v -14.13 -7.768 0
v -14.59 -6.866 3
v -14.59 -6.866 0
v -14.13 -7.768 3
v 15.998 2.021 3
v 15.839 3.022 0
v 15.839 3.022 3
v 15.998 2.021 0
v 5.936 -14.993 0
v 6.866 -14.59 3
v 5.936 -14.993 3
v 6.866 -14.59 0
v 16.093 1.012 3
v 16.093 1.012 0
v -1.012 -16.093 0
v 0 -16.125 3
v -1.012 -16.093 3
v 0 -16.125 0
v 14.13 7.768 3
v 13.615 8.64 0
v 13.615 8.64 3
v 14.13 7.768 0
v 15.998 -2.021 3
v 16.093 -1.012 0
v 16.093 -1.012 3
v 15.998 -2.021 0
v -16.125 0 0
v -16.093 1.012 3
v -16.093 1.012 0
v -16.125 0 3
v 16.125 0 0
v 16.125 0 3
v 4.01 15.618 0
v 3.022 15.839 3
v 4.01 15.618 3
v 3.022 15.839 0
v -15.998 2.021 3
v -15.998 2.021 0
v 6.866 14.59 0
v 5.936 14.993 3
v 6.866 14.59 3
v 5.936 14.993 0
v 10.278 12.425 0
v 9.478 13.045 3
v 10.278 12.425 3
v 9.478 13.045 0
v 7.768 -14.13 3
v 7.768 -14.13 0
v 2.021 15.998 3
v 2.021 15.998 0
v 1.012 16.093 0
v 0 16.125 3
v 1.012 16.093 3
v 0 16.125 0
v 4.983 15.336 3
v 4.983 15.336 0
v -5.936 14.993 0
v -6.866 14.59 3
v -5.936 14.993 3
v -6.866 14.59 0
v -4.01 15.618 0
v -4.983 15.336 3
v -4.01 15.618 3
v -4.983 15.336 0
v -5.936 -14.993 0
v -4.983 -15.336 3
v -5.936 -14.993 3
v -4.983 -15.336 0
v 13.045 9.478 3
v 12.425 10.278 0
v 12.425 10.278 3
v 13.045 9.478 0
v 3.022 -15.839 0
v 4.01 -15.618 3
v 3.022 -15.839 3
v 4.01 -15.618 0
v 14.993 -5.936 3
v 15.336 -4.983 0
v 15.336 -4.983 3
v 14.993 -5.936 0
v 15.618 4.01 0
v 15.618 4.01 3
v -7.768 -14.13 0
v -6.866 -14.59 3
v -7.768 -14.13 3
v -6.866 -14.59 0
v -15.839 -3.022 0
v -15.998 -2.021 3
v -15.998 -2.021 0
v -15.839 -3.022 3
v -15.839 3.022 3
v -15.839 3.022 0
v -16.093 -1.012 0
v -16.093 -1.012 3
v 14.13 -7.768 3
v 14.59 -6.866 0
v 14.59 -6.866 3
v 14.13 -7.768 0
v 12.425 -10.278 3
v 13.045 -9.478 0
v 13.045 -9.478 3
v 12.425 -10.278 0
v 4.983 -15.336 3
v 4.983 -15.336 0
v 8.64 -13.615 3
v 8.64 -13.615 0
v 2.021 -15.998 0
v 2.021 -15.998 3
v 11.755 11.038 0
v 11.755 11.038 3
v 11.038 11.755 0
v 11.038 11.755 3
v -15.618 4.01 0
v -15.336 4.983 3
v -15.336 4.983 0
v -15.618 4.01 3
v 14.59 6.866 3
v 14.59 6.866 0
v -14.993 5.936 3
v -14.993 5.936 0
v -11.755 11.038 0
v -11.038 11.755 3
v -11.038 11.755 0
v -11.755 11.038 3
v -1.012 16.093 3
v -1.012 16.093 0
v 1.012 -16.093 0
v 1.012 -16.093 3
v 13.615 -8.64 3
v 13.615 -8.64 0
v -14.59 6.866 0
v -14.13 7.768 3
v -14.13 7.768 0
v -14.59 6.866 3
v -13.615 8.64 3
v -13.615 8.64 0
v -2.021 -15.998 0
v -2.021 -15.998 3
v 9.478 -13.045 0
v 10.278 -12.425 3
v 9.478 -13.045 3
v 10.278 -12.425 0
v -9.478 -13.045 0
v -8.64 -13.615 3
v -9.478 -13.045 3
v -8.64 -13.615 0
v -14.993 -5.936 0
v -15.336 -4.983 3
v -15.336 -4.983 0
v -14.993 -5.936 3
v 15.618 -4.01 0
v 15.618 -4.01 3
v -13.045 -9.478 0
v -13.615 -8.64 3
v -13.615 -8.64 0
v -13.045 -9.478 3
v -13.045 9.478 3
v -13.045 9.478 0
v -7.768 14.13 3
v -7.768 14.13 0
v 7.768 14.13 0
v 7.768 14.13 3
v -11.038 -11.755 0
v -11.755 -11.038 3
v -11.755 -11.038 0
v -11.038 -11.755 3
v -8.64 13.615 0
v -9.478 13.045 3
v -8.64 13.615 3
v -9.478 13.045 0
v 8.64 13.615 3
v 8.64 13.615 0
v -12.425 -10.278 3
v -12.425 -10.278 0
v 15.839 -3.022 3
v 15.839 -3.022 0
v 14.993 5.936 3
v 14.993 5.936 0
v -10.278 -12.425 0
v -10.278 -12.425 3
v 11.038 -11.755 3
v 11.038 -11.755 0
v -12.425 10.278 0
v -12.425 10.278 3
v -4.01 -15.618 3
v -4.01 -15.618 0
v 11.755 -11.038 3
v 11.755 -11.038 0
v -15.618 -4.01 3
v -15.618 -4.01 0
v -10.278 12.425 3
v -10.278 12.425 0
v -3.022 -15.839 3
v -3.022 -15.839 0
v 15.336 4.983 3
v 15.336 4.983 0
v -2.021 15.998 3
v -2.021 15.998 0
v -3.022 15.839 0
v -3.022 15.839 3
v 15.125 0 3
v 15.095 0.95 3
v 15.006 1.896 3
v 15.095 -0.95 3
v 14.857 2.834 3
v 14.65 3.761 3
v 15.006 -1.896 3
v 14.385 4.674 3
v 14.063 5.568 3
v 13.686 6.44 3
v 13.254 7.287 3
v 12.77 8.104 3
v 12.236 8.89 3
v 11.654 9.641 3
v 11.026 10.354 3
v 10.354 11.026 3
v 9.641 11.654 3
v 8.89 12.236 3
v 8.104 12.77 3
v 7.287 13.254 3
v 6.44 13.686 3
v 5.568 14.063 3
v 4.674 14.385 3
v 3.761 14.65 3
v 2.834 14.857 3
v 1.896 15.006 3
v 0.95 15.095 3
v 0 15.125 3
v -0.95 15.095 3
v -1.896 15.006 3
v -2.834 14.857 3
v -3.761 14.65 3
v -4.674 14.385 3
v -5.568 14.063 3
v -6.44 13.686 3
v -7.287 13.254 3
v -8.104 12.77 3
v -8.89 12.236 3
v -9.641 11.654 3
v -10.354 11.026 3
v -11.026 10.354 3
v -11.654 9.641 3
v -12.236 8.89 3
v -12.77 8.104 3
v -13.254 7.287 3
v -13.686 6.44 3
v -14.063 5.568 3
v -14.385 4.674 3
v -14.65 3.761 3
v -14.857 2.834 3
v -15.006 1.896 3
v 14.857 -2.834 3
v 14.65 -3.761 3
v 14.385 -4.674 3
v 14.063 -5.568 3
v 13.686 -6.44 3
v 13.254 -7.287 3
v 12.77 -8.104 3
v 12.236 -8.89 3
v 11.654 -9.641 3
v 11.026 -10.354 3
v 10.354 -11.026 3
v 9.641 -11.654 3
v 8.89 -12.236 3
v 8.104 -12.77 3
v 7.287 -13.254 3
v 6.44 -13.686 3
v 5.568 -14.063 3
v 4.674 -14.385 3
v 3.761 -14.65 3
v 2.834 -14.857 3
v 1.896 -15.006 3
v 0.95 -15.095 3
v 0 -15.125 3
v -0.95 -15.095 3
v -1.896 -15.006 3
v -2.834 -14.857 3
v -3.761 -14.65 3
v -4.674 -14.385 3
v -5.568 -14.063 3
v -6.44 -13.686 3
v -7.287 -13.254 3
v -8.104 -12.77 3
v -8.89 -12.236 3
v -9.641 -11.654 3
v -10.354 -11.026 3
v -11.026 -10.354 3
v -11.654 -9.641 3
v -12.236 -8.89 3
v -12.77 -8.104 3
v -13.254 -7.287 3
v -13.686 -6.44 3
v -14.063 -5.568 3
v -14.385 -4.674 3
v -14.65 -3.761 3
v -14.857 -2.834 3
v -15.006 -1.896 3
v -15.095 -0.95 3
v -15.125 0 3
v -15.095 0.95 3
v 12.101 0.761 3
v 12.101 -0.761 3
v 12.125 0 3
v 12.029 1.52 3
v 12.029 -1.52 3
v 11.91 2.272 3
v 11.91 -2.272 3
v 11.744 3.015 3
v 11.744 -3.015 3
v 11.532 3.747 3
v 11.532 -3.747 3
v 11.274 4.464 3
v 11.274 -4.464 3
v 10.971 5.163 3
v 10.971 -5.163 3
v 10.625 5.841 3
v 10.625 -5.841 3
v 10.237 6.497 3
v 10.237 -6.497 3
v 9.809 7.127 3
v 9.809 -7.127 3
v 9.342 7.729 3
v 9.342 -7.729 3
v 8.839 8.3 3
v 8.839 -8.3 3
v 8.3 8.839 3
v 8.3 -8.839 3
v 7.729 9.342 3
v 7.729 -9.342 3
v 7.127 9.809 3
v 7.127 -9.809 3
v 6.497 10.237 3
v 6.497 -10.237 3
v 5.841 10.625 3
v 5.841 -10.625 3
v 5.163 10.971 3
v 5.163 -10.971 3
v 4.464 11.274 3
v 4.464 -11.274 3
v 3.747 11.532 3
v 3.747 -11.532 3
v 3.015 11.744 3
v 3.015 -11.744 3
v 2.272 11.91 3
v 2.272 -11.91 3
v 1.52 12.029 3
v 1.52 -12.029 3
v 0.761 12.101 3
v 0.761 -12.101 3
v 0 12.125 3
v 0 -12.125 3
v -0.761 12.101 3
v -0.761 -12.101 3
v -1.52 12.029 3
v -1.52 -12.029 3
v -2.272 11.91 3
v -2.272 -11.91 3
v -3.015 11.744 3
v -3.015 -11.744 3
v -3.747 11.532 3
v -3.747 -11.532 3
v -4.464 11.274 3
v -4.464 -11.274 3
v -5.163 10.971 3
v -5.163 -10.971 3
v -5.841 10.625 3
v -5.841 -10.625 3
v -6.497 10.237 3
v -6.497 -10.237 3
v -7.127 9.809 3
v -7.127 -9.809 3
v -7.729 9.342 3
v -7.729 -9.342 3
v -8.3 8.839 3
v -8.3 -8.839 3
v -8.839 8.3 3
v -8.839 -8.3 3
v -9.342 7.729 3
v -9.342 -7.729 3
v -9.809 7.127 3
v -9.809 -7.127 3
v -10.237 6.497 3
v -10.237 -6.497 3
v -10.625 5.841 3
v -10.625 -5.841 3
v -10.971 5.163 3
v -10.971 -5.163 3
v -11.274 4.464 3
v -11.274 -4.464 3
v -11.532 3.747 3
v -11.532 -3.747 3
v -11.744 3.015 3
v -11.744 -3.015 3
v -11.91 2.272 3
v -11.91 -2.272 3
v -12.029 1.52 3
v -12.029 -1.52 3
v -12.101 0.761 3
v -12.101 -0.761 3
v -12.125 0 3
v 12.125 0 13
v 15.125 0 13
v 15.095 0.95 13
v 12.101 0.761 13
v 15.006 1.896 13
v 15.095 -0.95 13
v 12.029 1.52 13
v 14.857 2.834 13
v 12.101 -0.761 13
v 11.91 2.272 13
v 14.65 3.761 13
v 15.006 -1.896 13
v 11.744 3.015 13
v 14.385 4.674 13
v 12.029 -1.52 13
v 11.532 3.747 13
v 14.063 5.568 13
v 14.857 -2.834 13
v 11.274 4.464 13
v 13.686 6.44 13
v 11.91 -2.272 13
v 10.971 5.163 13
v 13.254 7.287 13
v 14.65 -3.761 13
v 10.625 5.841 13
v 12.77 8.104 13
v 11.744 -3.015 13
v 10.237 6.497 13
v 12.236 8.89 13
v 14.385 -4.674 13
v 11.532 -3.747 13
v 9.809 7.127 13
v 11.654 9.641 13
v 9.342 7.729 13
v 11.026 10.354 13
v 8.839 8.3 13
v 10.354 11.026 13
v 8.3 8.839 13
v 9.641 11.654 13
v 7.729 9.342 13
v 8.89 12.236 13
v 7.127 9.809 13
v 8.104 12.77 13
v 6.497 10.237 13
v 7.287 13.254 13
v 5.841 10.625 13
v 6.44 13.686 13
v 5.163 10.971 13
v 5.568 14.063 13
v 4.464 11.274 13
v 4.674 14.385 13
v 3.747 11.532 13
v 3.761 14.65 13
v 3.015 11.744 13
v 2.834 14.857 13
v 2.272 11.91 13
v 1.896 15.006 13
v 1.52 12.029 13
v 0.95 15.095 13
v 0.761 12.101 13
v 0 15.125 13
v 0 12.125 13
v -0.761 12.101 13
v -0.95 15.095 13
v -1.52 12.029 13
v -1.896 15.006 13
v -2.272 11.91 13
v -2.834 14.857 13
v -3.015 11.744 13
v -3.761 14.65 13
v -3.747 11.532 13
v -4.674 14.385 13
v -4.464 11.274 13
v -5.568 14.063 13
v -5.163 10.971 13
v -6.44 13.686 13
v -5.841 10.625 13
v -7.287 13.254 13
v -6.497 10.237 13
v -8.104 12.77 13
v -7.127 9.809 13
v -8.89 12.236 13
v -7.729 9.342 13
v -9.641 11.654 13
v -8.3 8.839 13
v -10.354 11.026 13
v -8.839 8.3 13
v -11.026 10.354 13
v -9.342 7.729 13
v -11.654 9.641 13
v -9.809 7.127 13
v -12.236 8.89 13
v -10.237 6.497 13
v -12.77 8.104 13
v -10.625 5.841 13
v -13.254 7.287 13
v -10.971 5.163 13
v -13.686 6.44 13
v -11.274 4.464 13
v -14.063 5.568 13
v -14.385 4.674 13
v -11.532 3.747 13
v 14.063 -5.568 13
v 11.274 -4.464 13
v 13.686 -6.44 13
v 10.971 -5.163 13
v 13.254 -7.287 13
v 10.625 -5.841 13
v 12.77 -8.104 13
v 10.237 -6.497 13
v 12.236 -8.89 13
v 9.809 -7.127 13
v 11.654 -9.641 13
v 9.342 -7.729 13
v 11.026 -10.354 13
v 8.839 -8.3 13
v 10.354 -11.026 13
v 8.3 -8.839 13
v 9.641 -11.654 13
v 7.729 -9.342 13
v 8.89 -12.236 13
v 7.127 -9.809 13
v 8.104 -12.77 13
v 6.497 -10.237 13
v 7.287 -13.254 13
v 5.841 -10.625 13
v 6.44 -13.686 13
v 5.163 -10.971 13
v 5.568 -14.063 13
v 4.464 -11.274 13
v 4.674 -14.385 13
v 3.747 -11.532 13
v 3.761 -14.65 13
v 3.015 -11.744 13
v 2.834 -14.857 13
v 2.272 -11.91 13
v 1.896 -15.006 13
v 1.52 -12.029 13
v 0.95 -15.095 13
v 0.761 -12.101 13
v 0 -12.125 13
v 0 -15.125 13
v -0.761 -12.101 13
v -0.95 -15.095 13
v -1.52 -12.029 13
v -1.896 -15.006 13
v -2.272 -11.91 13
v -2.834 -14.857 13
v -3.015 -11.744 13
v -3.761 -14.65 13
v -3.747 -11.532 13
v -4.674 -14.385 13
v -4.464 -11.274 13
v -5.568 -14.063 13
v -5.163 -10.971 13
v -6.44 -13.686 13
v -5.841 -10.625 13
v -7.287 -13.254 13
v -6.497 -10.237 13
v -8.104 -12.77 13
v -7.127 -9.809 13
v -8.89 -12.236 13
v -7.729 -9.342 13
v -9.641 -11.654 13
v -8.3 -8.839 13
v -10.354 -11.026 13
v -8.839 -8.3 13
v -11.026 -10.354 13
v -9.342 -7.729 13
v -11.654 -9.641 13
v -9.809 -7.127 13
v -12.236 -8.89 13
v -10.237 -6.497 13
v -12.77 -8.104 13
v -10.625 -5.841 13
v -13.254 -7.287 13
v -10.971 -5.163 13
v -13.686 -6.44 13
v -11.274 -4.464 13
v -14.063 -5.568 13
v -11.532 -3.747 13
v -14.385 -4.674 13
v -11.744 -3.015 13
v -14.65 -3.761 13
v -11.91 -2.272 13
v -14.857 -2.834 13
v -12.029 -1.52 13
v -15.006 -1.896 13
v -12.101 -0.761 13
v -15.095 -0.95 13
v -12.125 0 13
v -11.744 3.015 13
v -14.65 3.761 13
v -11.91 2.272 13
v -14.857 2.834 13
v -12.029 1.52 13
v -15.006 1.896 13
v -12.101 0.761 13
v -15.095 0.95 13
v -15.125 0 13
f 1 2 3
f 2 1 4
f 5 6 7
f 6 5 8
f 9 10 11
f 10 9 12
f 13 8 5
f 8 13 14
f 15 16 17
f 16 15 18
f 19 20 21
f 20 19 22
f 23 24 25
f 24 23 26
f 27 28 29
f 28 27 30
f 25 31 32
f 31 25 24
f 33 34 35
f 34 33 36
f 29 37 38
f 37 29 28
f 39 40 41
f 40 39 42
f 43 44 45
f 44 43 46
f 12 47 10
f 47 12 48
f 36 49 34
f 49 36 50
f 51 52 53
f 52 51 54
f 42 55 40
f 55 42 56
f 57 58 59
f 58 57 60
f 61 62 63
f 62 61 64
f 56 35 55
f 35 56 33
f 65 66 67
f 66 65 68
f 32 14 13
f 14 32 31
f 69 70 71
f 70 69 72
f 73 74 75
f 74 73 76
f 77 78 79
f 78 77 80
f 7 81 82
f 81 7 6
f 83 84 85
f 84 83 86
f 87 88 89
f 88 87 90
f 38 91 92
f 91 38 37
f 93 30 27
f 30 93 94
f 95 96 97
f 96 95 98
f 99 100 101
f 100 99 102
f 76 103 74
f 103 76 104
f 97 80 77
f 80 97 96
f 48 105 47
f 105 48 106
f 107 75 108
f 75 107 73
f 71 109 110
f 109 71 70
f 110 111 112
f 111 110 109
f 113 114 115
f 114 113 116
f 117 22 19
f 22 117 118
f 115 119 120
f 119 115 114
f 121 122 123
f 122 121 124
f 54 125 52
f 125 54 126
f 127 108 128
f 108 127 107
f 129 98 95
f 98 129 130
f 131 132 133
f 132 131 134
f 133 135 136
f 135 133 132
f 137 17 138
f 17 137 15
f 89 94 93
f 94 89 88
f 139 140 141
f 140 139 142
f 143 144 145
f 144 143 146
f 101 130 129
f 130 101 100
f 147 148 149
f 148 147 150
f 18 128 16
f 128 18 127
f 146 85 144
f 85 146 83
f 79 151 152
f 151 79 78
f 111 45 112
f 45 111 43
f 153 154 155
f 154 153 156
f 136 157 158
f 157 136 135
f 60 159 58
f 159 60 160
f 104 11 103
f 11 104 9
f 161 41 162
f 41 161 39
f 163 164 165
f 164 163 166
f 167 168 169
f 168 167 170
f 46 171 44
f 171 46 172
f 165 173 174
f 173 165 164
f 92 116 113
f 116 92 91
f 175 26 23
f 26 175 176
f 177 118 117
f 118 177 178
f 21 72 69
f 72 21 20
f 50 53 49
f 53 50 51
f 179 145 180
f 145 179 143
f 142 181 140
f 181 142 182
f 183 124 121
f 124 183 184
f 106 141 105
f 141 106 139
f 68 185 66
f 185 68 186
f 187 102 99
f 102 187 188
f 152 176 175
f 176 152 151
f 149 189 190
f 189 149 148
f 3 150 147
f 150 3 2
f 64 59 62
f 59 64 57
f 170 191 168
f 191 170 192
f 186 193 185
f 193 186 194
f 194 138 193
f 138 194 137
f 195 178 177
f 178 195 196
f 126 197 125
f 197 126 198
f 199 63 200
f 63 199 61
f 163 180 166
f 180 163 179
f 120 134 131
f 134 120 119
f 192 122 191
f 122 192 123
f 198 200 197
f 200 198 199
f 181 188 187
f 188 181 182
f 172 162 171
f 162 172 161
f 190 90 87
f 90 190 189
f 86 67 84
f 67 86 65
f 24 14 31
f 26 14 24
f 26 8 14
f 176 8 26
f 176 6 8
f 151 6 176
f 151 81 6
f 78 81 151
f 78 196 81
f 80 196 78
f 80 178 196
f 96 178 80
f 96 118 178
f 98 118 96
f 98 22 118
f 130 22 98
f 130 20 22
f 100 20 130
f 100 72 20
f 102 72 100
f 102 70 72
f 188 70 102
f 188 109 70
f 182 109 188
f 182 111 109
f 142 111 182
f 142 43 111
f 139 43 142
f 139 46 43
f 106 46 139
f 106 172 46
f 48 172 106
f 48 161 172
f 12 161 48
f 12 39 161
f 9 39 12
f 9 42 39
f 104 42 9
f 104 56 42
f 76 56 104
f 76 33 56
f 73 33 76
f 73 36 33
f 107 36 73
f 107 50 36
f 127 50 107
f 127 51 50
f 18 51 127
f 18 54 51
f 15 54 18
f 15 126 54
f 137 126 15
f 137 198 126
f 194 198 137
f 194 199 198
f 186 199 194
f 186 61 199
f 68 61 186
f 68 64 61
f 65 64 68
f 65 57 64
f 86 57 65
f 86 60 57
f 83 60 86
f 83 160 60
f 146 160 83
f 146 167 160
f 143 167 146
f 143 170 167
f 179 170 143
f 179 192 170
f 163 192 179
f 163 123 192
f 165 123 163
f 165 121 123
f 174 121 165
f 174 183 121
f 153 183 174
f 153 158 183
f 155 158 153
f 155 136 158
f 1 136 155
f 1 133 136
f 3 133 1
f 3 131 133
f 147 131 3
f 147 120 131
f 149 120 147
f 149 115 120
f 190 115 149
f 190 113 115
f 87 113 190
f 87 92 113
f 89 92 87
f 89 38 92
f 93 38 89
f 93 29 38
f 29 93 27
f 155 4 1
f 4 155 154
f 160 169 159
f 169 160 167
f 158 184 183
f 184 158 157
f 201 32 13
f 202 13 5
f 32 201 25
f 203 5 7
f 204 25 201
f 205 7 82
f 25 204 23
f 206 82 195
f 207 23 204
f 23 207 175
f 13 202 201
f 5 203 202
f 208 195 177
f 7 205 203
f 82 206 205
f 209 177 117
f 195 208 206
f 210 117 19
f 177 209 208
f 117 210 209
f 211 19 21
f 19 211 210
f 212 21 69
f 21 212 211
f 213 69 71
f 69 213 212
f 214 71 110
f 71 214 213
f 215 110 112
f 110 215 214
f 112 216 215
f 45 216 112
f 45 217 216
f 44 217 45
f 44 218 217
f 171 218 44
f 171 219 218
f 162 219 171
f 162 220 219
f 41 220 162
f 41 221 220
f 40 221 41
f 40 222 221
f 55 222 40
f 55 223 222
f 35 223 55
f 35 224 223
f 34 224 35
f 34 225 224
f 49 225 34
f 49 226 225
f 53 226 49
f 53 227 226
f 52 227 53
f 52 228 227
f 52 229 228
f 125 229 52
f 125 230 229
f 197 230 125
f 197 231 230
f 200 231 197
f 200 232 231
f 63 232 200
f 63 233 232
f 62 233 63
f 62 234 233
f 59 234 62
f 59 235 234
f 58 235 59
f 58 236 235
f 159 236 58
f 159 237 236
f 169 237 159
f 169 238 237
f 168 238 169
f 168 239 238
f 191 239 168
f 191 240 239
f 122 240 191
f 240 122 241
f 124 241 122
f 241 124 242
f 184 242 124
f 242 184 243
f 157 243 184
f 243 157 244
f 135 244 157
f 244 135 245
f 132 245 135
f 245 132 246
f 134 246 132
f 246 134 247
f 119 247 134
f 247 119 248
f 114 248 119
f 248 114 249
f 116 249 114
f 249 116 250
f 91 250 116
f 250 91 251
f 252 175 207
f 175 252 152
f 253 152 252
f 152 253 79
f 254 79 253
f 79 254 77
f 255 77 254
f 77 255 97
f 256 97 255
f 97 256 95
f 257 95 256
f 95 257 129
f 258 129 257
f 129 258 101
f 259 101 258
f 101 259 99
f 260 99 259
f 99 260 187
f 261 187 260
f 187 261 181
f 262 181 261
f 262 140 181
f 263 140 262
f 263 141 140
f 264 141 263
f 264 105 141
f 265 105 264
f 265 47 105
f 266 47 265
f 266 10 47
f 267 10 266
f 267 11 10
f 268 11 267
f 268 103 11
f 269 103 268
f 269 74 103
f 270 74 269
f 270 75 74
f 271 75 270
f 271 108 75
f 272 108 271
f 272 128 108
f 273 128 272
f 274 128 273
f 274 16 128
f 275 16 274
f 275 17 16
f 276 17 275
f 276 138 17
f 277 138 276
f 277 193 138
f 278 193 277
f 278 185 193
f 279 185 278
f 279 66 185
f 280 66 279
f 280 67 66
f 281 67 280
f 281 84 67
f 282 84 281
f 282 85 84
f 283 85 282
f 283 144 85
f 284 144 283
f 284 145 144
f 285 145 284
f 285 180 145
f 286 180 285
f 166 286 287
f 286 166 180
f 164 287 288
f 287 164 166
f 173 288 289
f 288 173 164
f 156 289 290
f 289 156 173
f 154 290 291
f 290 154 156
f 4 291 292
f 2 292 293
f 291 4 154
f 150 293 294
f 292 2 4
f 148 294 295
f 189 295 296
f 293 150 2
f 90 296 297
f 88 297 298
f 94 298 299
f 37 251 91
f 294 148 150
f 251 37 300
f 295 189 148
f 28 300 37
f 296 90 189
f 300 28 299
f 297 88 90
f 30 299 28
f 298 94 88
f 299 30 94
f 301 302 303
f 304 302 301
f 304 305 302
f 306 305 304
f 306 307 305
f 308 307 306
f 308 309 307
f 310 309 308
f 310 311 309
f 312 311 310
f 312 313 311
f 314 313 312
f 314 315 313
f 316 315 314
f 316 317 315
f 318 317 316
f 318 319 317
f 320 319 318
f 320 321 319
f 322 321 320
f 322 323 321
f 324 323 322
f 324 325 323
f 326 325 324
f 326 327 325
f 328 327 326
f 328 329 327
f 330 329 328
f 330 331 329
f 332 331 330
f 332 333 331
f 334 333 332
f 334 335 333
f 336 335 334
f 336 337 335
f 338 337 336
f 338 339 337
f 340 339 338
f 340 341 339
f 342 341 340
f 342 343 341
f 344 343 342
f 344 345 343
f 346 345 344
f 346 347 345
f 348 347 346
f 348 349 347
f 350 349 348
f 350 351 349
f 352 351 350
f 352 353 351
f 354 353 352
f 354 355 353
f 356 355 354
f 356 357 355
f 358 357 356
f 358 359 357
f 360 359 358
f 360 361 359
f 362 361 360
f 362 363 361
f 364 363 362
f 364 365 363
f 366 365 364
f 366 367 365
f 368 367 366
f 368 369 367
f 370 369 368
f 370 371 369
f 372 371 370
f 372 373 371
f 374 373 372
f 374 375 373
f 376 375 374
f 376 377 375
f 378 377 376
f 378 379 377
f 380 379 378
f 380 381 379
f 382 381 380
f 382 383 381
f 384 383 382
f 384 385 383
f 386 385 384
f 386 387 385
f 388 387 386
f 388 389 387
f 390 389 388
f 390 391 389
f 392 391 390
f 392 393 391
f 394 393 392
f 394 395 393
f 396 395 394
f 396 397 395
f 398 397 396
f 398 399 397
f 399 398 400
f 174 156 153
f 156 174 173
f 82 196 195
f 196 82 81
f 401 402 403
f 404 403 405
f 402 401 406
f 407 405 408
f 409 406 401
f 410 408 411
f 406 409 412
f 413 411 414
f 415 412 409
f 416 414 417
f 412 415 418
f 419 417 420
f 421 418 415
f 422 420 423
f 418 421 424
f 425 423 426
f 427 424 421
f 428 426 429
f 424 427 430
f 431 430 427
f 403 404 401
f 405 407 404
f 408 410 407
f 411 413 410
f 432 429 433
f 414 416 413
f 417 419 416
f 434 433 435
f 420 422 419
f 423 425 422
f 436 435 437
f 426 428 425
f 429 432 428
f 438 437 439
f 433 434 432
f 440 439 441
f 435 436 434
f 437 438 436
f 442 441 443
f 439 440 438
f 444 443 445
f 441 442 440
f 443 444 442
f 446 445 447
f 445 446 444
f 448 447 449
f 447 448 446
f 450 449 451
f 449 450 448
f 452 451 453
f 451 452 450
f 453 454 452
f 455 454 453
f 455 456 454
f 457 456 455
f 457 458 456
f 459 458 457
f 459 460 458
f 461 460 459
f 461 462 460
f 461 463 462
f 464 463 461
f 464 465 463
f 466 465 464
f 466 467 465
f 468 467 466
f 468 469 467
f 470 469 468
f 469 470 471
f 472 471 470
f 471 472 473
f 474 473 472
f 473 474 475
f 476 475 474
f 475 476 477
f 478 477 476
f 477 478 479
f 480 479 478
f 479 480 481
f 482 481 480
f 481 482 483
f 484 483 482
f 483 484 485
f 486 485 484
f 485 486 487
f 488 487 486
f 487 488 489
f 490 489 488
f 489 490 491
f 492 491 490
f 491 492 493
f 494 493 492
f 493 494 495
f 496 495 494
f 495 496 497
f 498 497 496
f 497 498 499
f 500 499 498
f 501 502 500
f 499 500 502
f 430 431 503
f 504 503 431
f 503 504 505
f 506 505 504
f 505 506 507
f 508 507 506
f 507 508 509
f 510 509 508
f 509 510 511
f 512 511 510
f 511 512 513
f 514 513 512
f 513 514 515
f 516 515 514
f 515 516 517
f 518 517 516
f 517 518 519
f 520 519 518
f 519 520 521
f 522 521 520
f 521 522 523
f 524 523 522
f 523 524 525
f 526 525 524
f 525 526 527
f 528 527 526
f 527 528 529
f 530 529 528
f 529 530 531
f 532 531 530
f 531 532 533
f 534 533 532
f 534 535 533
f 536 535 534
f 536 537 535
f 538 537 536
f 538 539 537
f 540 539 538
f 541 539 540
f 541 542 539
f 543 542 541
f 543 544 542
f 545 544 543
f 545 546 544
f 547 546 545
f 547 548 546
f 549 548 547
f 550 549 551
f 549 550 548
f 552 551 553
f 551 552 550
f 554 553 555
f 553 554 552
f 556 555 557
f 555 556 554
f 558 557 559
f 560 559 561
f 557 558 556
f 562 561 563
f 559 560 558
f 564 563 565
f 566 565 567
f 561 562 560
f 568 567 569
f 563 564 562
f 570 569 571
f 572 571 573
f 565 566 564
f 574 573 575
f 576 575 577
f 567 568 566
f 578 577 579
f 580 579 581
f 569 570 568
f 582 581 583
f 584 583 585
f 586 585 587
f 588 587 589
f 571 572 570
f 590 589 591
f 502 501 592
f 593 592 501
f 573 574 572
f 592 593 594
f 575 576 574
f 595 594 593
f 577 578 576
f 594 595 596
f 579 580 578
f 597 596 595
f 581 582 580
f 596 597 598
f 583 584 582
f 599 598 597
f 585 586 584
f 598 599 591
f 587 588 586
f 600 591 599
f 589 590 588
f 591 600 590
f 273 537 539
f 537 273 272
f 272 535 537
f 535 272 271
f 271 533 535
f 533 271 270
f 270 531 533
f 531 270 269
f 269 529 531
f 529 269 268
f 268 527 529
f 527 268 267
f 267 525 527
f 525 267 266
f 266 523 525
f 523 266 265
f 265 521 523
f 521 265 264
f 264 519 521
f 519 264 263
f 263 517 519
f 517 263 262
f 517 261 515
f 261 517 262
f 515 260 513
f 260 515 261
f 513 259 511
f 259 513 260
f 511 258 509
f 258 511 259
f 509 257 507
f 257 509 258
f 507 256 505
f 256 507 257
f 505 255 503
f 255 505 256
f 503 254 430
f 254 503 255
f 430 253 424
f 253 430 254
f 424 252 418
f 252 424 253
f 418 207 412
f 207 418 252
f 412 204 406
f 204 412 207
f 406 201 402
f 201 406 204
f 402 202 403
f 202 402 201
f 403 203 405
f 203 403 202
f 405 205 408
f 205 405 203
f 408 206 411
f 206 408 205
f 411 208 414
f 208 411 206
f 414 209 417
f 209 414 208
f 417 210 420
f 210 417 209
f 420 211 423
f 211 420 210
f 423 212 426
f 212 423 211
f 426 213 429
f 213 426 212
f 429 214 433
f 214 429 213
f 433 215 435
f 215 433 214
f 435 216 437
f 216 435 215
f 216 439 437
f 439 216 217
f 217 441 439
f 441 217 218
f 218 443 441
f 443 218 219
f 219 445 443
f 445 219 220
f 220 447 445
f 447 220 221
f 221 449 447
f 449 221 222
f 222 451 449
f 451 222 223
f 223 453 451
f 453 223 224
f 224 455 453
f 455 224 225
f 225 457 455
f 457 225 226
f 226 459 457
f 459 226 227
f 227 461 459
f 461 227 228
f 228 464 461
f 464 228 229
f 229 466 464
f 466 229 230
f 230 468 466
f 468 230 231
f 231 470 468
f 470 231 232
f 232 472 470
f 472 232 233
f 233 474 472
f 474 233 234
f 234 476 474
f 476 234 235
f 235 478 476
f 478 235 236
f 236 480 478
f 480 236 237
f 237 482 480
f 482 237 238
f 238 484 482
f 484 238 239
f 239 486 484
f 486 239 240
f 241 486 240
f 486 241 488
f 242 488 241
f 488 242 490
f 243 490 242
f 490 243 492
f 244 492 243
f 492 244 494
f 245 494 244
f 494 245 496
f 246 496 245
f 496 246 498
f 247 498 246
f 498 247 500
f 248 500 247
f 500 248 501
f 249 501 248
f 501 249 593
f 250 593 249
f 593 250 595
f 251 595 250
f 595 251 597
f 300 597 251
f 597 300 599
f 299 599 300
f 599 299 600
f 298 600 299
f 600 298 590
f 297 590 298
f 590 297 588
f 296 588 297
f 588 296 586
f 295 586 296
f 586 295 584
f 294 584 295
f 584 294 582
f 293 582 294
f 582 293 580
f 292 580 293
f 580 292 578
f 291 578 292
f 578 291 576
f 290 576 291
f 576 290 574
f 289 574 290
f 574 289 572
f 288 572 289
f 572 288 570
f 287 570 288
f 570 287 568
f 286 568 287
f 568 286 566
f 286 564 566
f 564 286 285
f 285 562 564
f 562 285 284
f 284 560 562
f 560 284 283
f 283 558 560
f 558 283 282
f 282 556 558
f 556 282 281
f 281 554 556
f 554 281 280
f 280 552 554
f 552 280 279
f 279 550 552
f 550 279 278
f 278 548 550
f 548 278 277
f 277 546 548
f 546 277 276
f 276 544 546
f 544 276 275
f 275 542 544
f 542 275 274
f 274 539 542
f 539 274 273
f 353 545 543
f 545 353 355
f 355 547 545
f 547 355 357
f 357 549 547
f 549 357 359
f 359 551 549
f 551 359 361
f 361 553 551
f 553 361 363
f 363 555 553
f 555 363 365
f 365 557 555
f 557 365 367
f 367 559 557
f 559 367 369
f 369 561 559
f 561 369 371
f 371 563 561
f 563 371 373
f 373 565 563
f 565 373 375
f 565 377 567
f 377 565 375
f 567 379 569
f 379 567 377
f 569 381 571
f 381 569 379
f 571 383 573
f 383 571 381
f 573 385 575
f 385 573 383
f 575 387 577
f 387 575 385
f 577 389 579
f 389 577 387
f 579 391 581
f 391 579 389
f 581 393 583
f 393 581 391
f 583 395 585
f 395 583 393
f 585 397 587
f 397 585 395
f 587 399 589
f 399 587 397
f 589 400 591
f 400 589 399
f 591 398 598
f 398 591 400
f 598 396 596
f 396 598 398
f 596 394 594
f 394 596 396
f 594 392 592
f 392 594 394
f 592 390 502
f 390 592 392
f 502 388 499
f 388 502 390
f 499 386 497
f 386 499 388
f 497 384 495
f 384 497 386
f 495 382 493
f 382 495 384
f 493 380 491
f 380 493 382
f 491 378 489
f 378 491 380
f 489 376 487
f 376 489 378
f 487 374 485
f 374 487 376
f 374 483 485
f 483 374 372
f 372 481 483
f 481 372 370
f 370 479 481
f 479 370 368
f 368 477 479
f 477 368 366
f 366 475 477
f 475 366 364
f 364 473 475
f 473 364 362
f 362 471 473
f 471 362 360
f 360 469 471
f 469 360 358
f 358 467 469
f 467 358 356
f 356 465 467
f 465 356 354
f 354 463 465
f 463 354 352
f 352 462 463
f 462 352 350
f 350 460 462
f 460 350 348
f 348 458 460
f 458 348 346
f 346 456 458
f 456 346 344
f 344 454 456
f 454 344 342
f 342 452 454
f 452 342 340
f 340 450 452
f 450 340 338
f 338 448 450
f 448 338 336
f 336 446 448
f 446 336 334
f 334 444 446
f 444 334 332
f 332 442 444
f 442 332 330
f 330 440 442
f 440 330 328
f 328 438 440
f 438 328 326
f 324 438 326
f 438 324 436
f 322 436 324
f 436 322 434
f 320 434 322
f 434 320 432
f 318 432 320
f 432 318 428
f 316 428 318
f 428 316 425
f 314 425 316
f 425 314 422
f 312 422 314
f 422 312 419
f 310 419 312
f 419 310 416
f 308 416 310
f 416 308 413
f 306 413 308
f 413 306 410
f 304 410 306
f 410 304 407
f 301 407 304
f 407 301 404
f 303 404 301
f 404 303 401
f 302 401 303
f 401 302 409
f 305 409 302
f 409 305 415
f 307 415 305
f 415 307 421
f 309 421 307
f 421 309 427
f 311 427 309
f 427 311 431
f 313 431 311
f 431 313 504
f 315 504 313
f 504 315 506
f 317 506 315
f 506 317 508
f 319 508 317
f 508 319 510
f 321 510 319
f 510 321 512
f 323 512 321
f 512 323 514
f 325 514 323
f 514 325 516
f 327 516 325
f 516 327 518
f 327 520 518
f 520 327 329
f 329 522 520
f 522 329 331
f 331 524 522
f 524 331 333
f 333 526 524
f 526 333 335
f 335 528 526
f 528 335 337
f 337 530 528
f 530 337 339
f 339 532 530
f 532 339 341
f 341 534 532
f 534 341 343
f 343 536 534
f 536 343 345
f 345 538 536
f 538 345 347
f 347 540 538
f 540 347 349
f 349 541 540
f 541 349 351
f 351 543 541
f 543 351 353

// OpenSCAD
/********************************************************
 * Closet Rod Endcap - vsergeev
 * https://github.com/vsergeev/3d-closet-rod-endcap
 * CC-BY-4.0
 *
 * Release Notes
 *  * v1.0 - 06/20/2023
 *      * Initial release.
 ********************************************************/

// in mm
base_xy_diameter = 32.25;

// in mm
base_xy_z_thickness = 3;

// in mm
insert_xy_diameter = 30.25;

// in mm
insert_xy_thickness = 3;

// in mm
insert_z_height = 10;

/* [Hidden] */

$fn = 100;

overlap_epsilon = 0.01;

/******************************************************************************/
/* 2D Profiles */
/******************************************************************************/

module profile_base_footprint() {
    circle(d = base_xy_diameter);
}

module profile_insert_footprint() {
    difference() {
        circle(d = insert_xy_diameter);
        circle(d = insert_xy_diameter - insert_xy_thickness * 2);
    }
}

/******************************************************************************/
/* 3D Extrusions */
/******************************************************************************/

module endcap() {
    union() {
        linear_extrude(base_xy_z_thickness)
            profile_base_footprint();

        translate([0, 0, base_xy_z_thickness - overlap_epsilon])
            linear_extrude(insert_z_height + overlap_epsilon)
                profile_insert_footprint();
    }
}

/******************************************************************************/
/* Top Level */
/******************************************************************************/

endcap();
